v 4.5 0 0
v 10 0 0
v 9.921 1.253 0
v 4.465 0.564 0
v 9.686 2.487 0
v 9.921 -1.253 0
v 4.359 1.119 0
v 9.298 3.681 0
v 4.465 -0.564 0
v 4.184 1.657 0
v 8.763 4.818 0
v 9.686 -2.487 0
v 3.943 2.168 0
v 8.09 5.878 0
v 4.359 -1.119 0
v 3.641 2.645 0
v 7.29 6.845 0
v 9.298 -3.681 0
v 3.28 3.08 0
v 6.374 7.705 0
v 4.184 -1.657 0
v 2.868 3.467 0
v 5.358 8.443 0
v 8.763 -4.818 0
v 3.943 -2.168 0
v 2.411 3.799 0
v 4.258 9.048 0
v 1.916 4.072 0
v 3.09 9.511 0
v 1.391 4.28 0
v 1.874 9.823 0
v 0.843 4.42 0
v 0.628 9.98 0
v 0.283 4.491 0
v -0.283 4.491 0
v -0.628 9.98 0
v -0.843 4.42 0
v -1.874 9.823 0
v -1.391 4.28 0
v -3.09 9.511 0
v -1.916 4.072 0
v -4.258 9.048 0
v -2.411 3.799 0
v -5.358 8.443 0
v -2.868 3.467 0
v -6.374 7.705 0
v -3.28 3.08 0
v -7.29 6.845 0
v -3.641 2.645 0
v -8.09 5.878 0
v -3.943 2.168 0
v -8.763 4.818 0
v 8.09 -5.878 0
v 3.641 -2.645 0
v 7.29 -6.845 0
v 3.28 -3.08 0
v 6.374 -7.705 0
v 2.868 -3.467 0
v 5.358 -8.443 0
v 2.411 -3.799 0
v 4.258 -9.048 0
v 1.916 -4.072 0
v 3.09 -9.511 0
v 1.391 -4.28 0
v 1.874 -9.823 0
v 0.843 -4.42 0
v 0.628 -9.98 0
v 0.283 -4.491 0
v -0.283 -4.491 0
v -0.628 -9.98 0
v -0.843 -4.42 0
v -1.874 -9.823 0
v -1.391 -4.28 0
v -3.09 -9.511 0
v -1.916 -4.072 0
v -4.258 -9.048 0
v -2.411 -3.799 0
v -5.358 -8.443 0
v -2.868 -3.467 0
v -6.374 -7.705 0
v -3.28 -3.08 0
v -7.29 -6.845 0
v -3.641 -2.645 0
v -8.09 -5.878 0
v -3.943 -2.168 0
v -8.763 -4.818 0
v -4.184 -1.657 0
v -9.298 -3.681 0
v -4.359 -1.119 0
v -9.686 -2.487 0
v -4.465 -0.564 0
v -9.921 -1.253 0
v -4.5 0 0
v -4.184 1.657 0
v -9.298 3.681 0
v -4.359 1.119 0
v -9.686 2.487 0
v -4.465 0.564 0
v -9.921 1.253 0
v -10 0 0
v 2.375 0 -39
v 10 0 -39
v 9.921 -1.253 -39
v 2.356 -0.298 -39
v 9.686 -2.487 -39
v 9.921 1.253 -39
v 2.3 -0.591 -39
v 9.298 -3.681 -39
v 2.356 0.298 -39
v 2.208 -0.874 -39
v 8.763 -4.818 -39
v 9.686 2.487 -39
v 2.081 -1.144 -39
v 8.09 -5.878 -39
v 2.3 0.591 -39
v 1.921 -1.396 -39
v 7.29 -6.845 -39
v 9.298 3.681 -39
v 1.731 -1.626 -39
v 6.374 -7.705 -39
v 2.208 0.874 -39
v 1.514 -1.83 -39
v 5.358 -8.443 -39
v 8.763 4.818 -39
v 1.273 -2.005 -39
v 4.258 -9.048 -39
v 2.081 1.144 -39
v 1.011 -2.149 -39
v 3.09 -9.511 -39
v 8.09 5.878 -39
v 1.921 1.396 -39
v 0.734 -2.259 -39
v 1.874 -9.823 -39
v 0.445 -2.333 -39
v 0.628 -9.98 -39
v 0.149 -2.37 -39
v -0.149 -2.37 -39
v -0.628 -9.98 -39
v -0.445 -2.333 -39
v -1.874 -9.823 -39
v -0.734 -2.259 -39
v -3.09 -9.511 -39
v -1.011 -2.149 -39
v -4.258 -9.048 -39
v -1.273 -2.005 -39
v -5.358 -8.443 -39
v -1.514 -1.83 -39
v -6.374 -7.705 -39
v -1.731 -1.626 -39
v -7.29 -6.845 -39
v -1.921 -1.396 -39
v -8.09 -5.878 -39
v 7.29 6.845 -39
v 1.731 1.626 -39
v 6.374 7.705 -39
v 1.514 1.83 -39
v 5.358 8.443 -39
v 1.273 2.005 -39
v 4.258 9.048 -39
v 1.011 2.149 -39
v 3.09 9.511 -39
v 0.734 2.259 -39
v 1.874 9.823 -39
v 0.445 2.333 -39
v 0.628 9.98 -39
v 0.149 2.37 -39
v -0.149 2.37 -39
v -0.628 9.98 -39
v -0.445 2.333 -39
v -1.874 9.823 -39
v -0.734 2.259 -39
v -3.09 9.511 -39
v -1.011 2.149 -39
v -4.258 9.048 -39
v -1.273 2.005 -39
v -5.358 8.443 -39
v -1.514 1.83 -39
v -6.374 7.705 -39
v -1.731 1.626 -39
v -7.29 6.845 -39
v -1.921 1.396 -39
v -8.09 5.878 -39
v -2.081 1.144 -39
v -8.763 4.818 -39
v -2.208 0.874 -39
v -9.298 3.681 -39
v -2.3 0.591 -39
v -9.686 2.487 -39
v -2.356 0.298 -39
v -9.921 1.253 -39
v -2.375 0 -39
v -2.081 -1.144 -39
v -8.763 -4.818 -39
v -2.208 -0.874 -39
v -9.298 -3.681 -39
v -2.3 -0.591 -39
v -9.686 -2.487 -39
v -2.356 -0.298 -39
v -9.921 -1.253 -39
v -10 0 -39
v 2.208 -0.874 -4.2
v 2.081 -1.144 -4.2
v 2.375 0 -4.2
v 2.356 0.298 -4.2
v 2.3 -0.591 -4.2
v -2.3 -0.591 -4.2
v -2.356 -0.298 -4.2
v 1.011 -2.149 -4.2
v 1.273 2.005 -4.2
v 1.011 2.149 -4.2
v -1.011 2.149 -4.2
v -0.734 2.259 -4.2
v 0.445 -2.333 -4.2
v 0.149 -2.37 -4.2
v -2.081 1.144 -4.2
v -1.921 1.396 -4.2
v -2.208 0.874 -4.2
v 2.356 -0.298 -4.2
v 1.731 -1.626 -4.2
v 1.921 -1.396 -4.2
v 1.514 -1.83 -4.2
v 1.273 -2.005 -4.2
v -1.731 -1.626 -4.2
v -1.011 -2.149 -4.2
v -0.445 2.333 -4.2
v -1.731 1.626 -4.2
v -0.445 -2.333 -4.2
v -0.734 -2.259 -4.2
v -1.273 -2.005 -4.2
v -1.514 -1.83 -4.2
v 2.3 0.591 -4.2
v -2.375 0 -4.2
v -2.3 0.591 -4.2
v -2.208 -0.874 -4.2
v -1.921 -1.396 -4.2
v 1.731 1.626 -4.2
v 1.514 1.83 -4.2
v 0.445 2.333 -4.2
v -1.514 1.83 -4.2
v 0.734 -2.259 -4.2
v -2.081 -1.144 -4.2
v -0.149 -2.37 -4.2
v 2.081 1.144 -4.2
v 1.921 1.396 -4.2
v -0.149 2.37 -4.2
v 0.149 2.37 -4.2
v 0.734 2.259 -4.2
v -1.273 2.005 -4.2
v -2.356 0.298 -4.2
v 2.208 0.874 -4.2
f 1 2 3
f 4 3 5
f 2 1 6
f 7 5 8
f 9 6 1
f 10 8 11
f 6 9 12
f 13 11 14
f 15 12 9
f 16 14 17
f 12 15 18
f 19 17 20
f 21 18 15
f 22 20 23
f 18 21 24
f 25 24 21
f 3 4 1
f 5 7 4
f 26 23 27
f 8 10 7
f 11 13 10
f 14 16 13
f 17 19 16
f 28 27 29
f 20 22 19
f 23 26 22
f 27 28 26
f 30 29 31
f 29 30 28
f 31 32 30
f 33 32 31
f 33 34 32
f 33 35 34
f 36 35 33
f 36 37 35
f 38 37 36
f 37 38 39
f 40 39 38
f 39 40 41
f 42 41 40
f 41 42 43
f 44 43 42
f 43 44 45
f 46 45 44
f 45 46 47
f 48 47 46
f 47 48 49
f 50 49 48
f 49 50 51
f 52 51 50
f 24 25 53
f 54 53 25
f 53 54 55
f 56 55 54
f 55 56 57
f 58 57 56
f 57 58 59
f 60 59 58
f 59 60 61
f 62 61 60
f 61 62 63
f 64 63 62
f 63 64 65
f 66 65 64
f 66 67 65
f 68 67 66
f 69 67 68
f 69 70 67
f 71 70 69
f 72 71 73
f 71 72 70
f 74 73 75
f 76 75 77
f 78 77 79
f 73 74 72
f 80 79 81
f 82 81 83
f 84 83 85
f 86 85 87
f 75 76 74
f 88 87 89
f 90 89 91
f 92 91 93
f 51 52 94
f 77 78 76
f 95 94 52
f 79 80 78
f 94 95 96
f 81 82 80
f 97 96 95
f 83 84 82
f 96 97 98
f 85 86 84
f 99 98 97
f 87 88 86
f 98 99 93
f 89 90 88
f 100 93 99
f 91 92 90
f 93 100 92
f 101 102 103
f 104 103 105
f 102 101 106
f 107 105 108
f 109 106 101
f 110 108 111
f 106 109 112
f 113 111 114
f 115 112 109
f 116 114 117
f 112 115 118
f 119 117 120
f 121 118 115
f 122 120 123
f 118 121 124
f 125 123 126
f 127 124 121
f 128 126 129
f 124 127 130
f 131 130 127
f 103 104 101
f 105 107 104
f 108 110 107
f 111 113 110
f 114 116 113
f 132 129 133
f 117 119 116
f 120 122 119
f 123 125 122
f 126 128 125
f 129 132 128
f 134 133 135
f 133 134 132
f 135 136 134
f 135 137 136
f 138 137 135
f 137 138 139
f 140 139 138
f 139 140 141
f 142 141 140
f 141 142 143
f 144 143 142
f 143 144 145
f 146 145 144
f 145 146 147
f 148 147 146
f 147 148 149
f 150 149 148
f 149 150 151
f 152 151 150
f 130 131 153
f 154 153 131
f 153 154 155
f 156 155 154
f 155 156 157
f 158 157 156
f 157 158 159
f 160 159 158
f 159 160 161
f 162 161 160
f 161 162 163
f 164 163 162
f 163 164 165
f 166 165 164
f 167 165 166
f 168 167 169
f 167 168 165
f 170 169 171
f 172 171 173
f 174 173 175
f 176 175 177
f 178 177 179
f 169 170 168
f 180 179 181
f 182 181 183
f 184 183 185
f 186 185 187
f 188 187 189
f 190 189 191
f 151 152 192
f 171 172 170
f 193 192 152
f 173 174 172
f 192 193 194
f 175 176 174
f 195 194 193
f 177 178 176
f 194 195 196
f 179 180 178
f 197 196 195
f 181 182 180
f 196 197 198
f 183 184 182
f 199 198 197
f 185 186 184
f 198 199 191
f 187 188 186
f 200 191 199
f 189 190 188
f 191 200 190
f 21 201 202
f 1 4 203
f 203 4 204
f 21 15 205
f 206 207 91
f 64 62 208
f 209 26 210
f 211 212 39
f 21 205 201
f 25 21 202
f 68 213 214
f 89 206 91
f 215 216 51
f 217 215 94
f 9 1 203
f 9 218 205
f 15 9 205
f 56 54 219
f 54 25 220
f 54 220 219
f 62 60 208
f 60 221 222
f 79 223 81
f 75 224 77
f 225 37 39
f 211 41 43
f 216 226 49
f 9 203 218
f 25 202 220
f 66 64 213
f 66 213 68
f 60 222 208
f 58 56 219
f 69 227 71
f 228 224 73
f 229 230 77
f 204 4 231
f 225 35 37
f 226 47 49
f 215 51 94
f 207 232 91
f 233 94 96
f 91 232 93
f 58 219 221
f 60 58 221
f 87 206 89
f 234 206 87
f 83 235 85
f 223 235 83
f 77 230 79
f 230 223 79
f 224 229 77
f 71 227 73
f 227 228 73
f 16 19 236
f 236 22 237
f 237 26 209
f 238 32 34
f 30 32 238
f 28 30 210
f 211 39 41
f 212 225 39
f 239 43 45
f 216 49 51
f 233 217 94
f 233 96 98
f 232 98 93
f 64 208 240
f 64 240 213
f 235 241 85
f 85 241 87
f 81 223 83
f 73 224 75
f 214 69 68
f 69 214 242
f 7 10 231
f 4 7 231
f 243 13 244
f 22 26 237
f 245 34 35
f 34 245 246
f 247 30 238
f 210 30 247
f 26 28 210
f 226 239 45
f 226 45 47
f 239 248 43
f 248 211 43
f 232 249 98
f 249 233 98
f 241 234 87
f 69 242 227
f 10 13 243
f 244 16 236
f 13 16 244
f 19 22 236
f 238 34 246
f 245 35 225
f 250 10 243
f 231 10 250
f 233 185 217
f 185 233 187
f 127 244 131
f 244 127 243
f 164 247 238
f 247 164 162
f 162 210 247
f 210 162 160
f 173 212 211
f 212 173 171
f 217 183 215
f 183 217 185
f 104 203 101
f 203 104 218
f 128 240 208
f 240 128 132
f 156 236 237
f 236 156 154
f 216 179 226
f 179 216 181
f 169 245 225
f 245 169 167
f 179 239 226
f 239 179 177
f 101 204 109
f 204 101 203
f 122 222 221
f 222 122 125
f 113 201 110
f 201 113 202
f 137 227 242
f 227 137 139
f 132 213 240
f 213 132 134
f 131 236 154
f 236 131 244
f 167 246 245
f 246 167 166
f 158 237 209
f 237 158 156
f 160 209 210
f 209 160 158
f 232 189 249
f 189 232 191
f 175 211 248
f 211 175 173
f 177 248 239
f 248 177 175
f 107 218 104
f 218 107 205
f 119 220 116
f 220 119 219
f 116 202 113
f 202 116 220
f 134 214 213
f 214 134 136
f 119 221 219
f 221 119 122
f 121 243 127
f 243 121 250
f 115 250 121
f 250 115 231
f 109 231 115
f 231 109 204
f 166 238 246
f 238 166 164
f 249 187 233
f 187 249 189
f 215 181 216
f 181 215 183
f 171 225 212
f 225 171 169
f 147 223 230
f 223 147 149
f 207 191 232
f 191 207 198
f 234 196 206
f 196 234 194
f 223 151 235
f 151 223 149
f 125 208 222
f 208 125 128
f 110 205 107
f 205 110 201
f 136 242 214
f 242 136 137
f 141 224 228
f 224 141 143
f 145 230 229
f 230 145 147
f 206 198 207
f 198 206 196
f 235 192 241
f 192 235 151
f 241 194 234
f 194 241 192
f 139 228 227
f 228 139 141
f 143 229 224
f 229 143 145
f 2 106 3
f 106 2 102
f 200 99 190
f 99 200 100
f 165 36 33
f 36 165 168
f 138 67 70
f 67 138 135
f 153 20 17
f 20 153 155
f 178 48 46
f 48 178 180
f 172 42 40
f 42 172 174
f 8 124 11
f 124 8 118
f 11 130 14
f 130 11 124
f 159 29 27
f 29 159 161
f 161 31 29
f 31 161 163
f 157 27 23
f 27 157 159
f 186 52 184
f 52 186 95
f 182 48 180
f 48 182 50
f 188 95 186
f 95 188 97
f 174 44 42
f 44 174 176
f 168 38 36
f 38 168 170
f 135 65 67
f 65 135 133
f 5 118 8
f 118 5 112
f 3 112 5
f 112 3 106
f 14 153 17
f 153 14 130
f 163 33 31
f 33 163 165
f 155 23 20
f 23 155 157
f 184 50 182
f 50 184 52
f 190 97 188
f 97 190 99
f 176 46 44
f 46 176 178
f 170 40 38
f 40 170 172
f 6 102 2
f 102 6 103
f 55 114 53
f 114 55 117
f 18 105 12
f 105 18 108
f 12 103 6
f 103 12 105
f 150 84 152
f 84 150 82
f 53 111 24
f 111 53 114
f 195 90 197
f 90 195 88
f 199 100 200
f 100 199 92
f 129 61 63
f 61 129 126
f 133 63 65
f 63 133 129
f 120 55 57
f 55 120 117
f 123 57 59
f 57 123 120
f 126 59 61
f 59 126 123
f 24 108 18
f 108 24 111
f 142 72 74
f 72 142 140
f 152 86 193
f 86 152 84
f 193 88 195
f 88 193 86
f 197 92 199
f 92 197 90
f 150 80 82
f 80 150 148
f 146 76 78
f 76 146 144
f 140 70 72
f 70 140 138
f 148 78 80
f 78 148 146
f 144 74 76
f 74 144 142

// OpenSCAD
$fn = 50;


difference() {
	union() {
		translate(v = [0, 0, -39.0000000000]) {
			cylinder(h = 39, r = 10.0000000000);
		}
	}
	union() {
		translate(v = [0, 0, 0]) {
			rotate(a = [0, 0, 0]) {
				difference() {
					union() {
						#translate(v = [0, 0, -39.0000000000]) {
							cylinder(h = 39, r = 2.2500000000);
						}
						#translate(v = [0, 0, -4.2000000000]) {
							cylinder(h = 4.2000000000, r = 10.0000000000, r1 = 2.3750000000, r2 = 4.5000000000);
						}
						#translate(v = [0, 0, -39.0000000000]) {
							cylinder(h = 39, r = 2.3750000000);
						}
						#translate(v = [0, 0, -39.0000000000]) {
							cylinder(h = 39, r = 2.2500000000);
						}
					}
					union();
				}
			}
		}
	}
}
